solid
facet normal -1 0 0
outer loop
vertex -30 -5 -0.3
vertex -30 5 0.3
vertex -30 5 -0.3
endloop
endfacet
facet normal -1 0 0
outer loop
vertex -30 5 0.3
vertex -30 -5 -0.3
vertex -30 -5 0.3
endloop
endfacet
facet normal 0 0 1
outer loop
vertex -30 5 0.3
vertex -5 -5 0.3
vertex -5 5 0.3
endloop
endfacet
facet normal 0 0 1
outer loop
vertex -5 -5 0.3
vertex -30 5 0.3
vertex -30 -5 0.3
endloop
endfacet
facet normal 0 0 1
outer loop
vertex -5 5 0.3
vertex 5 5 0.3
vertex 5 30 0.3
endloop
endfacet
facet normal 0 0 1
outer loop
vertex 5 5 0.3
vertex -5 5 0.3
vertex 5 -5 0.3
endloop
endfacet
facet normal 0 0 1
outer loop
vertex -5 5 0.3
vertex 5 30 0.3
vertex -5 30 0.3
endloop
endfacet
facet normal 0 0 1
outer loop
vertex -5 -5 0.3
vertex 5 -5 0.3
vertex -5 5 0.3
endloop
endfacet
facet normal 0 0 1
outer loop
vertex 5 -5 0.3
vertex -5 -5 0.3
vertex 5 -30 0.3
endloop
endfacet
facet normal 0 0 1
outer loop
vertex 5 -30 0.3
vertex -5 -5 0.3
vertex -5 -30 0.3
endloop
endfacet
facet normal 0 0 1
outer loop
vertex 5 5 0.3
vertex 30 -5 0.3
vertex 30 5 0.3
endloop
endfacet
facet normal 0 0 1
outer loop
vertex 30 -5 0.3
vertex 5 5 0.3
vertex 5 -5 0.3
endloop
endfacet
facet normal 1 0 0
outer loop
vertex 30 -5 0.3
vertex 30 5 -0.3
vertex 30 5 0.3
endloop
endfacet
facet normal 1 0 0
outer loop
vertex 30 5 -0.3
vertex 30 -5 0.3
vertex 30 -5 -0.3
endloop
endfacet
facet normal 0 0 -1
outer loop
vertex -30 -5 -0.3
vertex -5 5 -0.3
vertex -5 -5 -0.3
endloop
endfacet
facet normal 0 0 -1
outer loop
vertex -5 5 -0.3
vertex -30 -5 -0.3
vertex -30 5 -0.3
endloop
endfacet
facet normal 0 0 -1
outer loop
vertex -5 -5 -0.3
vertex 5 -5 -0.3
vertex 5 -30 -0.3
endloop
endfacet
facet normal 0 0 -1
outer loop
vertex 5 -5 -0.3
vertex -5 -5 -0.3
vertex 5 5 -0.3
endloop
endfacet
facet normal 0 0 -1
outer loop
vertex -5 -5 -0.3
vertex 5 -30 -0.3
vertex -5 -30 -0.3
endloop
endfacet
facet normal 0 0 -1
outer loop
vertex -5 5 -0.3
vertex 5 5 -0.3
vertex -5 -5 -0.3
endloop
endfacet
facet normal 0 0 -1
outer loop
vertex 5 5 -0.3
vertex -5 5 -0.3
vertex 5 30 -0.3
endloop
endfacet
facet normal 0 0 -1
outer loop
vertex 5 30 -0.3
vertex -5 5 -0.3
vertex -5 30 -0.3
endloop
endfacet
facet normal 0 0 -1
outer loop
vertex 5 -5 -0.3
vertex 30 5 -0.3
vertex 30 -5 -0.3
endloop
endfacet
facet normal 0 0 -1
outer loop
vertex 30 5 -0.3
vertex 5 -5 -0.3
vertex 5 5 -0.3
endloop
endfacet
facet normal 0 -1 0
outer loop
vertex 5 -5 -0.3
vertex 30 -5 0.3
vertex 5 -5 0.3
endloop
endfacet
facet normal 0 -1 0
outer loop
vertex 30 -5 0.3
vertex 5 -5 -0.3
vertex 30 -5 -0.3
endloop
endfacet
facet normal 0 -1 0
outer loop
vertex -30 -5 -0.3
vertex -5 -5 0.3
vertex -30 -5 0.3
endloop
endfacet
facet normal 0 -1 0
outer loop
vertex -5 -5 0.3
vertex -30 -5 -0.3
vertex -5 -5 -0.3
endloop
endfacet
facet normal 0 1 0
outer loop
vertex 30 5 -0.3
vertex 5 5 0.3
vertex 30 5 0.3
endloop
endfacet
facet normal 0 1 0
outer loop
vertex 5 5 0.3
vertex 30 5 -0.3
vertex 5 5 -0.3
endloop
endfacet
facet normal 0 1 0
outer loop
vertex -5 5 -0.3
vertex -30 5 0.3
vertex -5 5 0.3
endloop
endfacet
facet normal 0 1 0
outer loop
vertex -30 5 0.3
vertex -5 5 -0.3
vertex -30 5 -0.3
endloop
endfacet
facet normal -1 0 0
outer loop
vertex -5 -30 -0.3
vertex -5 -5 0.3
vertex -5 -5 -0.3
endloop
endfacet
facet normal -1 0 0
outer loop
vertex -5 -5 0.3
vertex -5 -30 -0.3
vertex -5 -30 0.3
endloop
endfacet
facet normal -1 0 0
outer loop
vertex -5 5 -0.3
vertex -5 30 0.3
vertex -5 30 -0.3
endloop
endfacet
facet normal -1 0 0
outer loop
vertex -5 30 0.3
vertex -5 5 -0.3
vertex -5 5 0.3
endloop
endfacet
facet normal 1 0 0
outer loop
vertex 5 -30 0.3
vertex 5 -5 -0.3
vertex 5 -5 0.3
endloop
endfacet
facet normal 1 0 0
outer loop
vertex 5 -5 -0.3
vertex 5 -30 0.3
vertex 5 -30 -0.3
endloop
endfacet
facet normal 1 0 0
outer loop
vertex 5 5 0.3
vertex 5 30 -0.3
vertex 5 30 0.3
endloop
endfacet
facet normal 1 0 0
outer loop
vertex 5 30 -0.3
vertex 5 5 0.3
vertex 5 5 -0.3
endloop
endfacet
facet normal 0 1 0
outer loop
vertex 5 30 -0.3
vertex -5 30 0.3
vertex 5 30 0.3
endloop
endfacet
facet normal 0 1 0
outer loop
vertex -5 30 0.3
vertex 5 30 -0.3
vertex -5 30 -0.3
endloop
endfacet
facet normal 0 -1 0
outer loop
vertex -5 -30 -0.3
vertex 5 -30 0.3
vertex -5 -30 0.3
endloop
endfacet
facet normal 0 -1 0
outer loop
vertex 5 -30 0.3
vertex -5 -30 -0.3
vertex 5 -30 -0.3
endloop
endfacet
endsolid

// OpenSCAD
$fn = 100;

cube([60, 10, .6], center=true);
cube([10, 60, .6], center=true);
